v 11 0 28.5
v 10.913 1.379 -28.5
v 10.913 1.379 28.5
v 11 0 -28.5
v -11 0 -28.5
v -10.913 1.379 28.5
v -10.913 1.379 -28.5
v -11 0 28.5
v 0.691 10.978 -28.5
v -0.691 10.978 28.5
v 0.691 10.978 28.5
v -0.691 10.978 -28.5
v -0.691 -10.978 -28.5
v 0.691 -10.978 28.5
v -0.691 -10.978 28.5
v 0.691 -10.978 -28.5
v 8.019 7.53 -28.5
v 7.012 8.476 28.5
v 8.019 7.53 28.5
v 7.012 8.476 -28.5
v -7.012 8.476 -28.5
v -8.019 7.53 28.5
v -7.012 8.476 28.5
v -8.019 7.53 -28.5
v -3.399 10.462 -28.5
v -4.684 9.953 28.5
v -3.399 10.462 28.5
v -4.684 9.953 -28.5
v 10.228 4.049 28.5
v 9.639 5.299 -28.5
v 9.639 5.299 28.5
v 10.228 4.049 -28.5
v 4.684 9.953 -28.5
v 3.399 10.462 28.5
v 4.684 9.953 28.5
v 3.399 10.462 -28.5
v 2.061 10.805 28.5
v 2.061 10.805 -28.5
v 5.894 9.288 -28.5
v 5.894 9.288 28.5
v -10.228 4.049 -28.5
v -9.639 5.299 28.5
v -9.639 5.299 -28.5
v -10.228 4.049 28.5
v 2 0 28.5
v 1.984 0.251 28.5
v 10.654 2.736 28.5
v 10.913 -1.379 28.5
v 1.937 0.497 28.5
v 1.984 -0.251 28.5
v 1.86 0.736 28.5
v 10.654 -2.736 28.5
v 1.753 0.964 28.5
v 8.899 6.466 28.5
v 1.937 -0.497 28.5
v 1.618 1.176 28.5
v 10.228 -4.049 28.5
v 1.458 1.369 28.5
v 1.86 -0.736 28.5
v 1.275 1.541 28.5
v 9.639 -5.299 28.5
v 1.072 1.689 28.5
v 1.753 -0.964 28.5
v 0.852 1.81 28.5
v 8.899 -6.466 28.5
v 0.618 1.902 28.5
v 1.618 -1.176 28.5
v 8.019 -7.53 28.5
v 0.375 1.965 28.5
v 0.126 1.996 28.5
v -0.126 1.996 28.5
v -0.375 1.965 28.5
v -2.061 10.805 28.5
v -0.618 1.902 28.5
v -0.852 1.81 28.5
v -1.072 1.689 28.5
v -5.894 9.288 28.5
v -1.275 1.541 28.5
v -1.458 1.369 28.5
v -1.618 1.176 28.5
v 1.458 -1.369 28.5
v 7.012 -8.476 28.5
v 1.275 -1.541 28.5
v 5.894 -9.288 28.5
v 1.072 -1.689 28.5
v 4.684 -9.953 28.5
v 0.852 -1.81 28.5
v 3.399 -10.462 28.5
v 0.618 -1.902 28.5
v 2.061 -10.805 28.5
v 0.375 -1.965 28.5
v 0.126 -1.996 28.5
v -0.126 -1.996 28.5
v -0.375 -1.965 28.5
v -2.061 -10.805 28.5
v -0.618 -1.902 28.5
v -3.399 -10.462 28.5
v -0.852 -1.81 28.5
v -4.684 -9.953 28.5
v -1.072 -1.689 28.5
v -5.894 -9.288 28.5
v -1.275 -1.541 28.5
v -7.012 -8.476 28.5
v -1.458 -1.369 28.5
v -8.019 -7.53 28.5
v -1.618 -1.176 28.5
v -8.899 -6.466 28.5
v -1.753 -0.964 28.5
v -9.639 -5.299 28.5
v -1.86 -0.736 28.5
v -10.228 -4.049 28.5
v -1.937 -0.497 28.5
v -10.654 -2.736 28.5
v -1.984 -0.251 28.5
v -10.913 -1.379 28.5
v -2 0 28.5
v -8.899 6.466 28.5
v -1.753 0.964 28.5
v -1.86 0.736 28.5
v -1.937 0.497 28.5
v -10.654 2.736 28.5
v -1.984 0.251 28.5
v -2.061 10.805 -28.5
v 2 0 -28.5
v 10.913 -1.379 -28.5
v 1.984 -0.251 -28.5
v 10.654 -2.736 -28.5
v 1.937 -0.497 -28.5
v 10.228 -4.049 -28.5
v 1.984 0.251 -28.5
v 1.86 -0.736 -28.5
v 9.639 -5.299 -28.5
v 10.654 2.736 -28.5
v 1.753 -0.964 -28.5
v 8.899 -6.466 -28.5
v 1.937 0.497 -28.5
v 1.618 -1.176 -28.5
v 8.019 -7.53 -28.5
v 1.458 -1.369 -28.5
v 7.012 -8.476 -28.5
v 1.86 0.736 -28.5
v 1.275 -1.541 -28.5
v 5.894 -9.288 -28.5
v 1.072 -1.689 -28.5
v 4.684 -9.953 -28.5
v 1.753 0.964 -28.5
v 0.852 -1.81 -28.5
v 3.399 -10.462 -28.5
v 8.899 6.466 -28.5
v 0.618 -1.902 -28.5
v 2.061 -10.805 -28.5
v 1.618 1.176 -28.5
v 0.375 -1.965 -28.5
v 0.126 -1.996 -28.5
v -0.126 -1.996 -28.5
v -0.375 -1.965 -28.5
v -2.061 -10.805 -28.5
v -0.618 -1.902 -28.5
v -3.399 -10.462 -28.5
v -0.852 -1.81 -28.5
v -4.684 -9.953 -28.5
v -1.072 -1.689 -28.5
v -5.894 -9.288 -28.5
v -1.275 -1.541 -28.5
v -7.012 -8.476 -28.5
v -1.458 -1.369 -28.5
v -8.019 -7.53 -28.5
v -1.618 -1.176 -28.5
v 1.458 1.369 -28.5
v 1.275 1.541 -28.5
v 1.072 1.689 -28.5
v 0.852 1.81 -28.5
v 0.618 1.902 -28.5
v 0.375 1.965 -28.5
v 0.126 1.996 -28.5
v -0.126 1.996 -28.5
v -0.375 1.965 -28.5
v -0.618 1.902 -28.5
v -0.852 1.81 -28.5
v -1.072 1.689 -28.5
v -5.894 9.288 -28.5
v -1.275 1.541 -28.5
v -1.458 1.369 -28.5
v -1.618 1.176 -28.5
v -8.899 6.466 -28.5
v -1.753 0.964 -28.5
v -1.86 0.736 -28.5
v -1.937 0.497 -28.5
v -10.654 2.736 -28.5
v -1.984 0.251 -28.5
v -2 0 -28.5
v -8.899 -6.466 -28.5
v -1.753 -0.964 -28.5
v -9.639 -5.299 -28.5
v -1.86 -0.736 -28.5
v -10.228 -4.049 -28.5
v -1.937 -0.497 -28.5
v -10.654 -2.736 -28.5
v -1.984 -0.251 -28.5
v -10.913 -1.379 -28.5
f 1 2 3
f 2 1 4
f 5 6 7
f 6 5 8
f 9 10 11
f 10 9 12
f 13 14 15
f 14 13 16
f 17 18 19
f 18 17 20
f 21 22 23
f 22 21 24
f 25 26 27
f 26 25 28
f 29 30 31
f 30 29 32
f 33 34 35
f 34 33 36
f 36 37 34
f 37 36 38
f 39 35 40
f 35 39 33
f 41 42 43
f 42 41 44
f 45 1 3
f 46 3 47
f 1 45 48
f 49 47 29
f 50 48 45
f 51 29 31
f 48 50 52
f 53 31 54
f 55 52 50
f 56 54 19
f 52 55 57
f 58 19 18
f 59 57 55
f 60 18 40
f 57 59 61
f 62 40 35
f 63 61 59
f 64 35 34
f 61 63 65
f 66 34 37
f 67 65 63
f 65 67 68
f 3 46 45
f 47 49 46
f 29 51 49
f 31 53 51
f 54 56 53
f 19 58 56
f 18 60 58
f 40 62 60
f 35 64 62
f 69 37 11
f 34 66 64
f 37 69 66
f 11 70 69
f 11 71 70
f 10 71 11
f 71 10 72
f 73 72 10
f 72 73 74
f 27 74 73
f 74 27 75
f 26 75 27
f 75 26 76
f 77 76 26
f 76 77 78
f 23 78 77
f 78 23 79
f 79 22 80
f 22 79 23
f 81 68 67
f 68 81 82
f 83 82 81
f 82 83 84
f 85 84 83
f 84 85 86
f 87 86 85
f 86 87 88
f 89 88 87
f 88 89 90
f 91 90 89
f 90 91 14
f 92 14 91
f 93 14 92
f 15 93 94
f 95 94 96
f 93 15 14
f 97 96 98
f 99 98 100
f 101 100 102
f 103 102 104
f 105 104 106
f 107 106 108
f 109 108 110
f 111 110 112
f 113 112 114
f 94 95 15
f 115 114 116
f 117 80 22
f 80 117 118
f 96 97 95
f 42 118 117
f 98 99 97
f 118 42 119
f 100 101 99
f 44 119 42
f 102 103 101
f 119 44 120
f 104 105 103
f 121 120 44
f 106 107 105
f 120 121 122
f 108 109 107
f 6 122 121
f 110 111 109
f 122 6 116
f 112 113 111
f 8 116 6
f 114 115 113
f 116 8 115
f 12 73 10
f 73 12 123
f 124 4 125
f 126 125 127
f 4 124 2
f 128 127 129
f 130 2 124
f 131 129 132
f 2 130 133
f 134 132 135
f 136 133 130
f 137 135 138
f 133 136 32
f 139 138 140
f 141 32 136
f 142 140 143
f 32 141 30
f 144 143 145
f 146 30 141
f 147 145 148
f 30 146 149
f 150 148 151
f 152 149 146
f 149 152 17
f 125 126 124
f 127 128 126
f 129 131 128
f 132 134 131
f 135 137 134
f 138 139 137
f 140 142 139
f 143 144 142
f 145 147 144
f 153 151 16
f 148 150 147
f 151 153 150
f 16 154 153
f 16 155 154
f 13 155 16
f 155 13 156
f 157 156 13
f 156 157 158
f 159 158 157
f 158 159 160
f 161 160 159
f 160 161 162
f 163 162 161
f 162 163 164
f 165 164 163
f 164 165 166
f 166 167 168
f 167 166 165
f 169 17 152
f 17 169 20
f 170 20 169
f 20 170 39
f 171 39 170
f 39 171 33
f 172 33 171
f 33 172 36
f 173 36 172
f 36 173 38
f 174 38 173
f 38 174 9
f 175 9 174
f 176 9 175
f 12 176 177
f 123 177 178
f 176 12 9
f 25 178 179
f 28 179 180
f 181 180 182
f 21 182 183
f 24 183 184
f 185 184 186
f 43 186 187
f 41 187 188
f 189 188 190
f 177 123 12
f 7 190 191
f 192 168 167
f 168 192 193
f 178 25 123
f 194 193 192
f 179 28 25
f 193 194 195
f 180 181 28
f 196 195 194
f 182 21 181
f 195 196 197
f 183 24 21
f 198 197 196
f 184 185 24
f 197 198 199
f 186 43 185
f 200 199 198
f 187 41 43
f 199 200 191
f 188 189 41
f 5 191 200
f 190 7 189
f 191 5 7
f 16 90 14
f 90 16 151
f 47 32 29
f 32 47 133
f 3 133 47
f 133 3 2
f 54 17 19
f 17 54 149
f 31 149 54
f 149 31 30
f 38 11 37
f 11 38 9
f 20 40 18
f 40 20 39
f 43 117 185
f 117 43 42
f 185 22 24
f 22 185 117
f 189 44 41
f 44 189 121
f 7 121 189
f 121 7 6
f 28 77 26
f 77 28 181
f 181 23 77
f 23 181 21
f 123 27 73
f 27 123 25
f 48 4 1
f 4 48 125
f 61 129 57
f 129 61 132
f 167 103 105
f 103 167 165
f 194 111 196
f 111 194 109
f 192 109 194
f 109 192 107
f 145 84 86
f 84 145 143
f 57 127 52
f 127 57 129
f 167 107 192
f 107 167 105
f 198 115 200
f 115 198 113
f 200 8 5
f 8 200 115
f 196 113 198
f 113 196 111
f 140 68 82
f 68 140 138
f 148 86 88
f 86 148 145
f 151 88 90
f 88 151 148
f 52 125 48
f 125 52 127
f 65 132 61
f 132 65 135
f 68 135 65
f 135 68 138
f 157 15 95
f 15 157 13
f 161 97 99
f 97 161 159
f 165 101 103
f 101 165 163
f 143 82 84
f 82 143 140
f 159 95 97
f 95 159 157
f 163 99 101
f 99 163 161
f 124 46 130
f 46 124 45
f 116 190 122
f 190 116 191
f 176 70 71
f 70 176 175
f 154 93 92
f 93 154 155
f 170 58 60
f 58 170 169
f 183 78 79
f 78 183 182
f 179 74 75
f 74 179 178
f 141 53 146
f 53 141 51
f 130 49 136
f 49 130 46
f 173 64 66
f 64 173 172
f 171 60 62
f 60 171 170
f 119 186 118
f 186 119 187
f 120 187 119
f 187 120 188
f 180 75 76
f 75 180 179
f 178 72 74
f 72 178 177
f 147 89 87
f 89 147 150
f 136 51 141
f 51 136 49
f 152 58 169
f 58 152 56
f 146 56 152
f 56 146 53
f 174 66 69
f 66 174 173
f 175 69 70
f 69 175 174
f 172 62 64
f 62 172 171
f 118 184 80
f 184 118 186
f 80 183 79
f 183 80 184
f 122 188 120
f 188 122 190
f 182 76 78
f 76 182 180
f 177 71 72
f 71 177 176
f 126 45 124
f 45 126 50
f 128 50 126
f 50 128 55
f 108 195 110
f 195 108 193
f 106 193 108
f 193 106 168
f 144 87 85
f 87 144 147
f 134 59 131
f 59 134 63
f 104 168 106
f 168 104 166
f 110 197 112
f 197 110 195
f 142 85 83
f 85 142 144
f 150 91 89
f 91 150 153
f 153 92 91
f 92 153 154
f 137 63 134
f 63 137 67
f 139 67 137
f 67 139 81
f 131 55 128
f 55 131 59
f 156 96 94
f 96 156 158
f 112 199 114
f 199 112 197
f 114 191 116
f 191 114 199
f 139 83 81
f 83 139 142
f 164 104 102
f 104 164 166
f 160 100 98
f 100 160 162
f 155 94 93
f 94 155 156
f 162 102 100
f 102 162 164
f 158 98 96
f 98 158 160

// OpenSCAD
$fn = 50;


difference() {
	union() {
		translate(v = [0, 0, -28.5000000000]) {
			cylinder(h = 57, r = 11.0000000000);
		}
	}
	union() {
		translate(v = [0, 0, -100.0000000000]) {
			cylinder(h = 200, r = 2);
		}
	}
}
